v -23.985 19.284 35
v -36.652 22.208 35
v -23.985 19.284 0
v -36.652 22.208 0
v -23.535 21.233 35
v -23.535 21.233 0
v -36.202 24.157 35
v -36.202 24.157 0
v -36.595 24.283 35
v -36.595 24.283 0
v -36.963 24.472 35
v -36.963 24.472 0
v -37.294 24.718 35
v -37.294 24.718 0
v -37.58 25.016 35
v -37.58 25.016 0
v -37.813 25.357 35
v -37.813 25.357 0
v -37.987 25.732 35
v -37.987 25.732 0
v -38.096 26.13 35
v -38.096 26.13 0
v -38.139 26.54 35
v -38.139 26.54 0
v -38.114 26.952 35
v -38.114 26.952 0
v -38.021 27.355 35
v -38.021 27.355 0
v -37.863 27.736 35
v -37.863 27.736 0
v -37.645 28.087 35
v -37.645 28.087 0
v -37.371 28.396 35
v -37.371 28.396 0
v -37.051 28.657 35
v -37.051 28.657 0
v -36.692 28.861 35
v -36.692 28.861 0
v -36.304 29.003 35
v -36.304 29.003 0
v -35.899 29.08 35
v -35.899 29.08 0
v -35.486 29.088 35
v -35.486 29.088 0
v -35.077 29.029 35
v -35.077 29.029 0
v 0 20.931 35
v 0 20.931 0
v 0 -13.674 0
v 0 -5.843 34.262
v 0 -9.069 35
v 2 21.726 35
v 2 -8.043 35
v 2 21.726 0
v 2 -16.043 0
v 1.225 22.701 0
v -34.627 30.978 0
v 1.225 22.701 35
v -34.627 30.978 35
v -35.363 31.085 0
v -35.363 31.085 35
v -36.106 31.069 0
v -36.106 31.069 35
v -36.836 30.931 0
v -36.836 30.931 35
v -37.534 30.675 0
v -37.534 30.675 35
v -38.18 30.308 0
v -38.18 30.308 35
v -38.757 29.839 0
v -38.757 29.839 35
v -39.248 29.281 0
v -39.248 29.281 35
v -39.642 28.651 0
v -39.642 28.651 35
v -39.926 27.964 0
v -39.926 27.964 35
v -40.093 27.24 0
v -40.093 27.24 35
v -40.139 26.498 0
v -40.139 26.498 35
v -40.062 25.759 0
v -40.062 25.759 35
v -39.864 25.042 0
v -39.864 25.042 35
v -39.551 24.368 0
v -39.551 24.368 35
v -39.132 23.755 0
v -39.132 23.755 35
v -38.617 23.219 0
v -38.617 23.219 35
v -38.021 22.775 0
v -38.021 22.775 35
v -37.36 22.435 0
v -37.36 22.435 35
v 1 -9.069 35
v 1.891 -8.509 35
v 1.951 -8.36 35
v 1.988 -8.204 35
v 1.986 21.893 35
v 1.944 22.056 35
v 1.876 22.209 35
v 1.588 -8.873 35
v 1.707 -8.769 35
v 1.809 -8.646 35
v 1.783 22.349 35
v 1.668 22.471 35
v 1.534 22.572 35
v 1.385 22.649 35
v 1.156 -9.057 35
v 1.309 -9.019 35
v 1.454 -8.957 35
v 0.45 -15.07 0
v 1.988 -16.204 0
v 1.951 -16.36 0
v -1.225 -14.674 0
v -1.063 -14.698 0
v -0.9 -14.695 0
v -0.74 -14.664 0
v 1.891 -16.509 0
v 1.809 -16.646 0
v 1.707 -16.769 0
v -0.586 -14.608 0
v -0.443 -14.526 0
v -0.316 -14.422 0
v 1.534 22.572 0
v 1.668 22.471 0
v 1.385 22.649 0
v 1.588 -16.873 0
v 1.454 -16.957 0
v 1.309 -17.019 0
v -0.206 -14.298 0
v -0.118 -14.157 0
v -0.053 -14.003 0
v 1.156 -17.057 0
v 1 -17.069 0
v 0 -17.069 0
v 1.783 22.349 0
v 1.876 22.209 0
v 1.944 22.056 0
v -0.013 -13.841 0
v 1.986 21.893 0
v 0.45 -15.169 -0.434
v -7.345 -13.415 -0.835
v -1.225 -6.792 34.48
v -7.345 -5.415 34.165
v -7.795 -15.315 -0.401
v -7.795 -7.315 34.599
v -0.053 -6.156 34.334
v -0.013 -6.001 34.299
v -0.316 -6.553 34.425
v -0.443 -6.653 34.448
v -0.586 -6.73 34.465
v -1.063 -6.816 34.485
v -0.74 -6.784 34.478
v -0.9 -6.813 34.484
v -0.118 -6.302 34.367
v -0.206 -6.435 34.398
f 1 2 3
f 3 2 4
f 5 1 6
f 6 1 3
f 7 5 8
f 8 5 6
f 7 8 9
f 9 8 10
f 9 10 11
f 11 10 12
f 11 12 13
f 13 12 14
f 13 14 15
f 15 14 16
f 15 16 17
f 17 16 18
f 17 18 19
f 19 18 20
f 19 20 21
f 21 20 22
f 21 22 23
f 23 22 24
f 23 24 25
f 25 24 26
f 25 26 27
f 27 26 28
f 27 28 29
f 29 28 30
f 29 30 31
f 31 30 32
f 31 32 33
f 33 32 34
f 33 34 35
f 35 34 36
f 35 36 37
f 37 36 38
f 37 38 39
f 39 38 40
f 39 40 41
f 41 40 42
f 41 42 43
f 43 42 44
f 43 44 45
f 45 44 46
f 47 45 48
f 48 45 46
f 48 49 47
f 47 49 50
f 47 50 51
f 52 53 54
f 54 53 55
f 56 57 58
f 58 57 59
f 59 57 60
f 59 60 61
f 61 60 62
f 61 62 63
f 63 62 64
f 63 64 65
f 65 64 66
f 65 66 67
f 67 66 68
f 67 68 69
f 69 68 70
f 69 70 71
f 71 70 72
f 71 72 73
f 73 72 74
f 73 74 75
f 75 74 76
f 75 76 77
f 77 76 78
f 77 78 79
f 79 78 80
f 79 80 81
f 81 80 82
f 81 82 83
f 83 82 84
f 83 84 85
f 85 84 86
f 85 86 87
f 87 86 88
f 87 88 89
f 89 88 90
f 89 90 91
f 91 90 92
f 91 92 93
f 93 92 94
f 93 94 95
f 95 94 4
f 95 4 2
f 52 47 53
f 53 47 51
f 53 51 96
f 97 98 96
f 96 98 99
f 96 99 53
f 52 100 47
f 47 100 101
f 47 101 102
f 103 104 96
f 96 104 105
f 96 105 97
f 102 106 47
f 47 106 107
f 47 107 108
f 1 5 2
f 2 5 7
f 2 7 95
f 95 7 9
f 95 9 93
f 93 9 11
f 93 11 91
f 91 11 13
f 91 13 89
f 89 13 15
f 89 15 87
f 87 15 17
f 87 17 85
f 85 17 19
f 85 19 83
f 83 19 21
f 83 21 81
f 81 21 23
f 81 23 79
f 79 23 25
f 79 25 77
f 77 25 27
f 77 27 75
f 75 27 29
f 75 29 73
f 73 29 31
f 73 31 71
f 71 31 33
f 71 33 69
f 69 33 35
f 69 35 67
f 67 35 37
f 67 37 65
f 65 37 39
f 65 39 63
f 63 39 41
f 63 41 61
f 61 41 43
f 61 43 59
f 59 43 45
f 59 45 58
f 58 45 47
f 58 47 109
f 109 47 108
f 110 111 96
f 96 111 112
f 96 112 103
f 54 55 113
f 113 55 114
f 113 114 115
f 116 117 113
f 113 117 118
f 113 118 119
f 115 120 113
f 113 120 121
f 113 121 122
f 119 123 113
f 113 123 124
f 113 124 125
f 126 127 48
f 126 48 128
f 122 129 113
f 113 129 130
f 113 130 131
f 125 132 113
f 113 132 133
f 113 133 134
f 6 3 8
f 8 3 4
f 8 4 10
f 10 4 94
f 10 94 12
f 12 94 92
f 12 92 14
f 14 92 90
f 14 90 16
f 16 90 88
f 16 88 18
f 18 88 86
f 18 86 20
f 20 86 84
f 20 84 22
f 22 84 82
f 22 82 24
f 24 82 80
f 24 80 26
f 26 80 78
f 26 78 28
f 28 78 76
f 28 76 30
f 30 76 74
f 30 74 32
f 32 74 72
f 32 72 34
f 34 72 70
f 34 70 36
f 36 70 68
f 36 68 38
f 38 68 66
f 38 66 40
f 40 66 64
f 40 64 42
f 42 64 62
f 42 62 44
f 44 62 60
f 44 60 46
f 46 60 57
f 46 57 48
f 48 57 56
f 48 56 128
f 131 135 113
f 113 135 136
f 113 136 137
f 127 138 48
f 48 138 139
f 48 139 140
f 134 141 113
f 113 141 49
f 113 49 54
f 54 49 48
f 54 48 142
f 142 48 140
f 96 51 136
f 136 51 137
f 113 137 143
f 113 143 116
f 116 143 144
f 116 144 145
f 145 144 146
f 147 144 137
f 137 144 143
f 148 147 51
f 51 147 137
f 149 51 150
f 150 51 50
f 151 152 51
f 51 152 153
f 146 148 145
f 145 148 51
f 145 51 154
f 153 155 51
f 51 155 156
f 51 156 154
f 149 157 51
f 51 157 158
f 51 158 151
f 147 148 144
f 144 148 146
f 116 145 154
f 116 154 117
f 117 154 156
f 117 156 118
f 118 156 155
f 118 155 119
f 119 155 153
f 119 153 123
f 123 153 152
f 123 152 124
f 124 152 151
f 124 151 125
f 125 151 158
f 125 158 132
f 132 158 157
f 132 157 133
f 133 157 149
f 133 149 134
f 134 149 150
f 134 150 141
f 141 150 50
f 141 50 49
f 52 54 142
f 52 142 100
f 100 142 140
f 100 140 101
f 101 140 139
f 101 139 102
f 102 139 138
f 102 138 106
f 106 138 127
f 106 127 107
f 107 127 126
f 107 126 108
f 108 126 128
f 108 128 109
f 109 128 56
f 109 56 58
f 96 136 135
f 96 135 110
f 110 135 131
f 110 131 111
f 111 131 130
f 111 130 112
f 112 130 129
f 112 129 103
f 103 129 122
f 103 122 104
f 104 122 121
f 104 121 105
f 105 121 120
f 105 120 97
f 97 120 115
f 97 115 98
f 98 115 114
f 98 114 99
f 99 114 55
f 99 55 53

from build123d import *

# Parameters (mm, degrees)
EXTRUS_O_FINA1_DEPTH     = 35
RESSALTO_EXTRUS_O1_DEPTH = 2
ESBO_O4_W                = 35.902646142
ESBO_O4_H                = 2
EXTRUS_O_FINA2_DEPTH     = 8
FILETE1_R                = 1


with BuildPart() as part:
    # Esboço1 → Extrusão-Fina1 (new body)
    with BuildSketch(Plane.XY):
        with BuildLine():
            Line((0, -9.06918845), (0, 20.93081155))
            Line((0, 20.93081155), (-35.077322332, 29.029049507))
            ThreePointArc((-35.077322332, 29.029049507), (-38.07562513, 27.155501981), (-36.202077604, 24.157199183))
            Line((-36.202077604, 24.157199183), (-23.535266762, 21.232835476))
            Line((-23.535266762, 21.232835476), (-23.98516887, 19.284095347))
            Line((-23.98516887, 19.284095347), (-36.651979713, 22.208459053))
            ThreePointArc((-36.651979713, 22.208459053), (-40.02436526, 27.605404089), (-34.627420224, 30.977789636))
            Line((-34.627420224, 30.977789636), (2, 22.521683384))
            Line((2, 22.521683384), (2, -9.06918845))
            Line((2, -9.06918845), (0, -9.06918845))
        make_face()
    extrude(amount=EXTRUS_O_FINA1_DEPTH)

    # Esboço2 → Ressalto-extrusão1 (add)
    with BuildSketch(Plane(origin=(0, 0, 0), x_dir=(0, 0, -1), z_dir=(1, 0, 0))):
        Polygon((0, -9.06918845), (-35, -9.06918845), (0, -17.06918845), align=None)
    extrude(amount=RESSALTO_EXTRUS_O1_DEPTH)

    # Esboço4 → Extrusão-Fina2 (add)
    with BuildSketch(Plane(origin=(3.647257489, -0.820865703, 0.187626446), x_dir=(0, 0.2228248015021411, 0.9748585065718673), z_dir=(0.9743700647852352, -0.21929544888942776, 0.050124674031869196))):
        with Locations((14.147884543, 15.213560322)):
            Rectangle(ESBO_O4_W, ESBO_O4_H)
    extrude(amount=-EXTRUS_O_FINA2_DEPTH)

    # Filete1
    filete1_edges = [part.edges().sort_by_distance(p)[0] for p in [
        (2, 22.521683384, 17.5),
        (2, -13.06918845, 17.5),
        (0, -11.015914782, 17.271313991),
    ]]
    fillet(filete1_edges, radius=FILETE1_R)


solid = part.part
